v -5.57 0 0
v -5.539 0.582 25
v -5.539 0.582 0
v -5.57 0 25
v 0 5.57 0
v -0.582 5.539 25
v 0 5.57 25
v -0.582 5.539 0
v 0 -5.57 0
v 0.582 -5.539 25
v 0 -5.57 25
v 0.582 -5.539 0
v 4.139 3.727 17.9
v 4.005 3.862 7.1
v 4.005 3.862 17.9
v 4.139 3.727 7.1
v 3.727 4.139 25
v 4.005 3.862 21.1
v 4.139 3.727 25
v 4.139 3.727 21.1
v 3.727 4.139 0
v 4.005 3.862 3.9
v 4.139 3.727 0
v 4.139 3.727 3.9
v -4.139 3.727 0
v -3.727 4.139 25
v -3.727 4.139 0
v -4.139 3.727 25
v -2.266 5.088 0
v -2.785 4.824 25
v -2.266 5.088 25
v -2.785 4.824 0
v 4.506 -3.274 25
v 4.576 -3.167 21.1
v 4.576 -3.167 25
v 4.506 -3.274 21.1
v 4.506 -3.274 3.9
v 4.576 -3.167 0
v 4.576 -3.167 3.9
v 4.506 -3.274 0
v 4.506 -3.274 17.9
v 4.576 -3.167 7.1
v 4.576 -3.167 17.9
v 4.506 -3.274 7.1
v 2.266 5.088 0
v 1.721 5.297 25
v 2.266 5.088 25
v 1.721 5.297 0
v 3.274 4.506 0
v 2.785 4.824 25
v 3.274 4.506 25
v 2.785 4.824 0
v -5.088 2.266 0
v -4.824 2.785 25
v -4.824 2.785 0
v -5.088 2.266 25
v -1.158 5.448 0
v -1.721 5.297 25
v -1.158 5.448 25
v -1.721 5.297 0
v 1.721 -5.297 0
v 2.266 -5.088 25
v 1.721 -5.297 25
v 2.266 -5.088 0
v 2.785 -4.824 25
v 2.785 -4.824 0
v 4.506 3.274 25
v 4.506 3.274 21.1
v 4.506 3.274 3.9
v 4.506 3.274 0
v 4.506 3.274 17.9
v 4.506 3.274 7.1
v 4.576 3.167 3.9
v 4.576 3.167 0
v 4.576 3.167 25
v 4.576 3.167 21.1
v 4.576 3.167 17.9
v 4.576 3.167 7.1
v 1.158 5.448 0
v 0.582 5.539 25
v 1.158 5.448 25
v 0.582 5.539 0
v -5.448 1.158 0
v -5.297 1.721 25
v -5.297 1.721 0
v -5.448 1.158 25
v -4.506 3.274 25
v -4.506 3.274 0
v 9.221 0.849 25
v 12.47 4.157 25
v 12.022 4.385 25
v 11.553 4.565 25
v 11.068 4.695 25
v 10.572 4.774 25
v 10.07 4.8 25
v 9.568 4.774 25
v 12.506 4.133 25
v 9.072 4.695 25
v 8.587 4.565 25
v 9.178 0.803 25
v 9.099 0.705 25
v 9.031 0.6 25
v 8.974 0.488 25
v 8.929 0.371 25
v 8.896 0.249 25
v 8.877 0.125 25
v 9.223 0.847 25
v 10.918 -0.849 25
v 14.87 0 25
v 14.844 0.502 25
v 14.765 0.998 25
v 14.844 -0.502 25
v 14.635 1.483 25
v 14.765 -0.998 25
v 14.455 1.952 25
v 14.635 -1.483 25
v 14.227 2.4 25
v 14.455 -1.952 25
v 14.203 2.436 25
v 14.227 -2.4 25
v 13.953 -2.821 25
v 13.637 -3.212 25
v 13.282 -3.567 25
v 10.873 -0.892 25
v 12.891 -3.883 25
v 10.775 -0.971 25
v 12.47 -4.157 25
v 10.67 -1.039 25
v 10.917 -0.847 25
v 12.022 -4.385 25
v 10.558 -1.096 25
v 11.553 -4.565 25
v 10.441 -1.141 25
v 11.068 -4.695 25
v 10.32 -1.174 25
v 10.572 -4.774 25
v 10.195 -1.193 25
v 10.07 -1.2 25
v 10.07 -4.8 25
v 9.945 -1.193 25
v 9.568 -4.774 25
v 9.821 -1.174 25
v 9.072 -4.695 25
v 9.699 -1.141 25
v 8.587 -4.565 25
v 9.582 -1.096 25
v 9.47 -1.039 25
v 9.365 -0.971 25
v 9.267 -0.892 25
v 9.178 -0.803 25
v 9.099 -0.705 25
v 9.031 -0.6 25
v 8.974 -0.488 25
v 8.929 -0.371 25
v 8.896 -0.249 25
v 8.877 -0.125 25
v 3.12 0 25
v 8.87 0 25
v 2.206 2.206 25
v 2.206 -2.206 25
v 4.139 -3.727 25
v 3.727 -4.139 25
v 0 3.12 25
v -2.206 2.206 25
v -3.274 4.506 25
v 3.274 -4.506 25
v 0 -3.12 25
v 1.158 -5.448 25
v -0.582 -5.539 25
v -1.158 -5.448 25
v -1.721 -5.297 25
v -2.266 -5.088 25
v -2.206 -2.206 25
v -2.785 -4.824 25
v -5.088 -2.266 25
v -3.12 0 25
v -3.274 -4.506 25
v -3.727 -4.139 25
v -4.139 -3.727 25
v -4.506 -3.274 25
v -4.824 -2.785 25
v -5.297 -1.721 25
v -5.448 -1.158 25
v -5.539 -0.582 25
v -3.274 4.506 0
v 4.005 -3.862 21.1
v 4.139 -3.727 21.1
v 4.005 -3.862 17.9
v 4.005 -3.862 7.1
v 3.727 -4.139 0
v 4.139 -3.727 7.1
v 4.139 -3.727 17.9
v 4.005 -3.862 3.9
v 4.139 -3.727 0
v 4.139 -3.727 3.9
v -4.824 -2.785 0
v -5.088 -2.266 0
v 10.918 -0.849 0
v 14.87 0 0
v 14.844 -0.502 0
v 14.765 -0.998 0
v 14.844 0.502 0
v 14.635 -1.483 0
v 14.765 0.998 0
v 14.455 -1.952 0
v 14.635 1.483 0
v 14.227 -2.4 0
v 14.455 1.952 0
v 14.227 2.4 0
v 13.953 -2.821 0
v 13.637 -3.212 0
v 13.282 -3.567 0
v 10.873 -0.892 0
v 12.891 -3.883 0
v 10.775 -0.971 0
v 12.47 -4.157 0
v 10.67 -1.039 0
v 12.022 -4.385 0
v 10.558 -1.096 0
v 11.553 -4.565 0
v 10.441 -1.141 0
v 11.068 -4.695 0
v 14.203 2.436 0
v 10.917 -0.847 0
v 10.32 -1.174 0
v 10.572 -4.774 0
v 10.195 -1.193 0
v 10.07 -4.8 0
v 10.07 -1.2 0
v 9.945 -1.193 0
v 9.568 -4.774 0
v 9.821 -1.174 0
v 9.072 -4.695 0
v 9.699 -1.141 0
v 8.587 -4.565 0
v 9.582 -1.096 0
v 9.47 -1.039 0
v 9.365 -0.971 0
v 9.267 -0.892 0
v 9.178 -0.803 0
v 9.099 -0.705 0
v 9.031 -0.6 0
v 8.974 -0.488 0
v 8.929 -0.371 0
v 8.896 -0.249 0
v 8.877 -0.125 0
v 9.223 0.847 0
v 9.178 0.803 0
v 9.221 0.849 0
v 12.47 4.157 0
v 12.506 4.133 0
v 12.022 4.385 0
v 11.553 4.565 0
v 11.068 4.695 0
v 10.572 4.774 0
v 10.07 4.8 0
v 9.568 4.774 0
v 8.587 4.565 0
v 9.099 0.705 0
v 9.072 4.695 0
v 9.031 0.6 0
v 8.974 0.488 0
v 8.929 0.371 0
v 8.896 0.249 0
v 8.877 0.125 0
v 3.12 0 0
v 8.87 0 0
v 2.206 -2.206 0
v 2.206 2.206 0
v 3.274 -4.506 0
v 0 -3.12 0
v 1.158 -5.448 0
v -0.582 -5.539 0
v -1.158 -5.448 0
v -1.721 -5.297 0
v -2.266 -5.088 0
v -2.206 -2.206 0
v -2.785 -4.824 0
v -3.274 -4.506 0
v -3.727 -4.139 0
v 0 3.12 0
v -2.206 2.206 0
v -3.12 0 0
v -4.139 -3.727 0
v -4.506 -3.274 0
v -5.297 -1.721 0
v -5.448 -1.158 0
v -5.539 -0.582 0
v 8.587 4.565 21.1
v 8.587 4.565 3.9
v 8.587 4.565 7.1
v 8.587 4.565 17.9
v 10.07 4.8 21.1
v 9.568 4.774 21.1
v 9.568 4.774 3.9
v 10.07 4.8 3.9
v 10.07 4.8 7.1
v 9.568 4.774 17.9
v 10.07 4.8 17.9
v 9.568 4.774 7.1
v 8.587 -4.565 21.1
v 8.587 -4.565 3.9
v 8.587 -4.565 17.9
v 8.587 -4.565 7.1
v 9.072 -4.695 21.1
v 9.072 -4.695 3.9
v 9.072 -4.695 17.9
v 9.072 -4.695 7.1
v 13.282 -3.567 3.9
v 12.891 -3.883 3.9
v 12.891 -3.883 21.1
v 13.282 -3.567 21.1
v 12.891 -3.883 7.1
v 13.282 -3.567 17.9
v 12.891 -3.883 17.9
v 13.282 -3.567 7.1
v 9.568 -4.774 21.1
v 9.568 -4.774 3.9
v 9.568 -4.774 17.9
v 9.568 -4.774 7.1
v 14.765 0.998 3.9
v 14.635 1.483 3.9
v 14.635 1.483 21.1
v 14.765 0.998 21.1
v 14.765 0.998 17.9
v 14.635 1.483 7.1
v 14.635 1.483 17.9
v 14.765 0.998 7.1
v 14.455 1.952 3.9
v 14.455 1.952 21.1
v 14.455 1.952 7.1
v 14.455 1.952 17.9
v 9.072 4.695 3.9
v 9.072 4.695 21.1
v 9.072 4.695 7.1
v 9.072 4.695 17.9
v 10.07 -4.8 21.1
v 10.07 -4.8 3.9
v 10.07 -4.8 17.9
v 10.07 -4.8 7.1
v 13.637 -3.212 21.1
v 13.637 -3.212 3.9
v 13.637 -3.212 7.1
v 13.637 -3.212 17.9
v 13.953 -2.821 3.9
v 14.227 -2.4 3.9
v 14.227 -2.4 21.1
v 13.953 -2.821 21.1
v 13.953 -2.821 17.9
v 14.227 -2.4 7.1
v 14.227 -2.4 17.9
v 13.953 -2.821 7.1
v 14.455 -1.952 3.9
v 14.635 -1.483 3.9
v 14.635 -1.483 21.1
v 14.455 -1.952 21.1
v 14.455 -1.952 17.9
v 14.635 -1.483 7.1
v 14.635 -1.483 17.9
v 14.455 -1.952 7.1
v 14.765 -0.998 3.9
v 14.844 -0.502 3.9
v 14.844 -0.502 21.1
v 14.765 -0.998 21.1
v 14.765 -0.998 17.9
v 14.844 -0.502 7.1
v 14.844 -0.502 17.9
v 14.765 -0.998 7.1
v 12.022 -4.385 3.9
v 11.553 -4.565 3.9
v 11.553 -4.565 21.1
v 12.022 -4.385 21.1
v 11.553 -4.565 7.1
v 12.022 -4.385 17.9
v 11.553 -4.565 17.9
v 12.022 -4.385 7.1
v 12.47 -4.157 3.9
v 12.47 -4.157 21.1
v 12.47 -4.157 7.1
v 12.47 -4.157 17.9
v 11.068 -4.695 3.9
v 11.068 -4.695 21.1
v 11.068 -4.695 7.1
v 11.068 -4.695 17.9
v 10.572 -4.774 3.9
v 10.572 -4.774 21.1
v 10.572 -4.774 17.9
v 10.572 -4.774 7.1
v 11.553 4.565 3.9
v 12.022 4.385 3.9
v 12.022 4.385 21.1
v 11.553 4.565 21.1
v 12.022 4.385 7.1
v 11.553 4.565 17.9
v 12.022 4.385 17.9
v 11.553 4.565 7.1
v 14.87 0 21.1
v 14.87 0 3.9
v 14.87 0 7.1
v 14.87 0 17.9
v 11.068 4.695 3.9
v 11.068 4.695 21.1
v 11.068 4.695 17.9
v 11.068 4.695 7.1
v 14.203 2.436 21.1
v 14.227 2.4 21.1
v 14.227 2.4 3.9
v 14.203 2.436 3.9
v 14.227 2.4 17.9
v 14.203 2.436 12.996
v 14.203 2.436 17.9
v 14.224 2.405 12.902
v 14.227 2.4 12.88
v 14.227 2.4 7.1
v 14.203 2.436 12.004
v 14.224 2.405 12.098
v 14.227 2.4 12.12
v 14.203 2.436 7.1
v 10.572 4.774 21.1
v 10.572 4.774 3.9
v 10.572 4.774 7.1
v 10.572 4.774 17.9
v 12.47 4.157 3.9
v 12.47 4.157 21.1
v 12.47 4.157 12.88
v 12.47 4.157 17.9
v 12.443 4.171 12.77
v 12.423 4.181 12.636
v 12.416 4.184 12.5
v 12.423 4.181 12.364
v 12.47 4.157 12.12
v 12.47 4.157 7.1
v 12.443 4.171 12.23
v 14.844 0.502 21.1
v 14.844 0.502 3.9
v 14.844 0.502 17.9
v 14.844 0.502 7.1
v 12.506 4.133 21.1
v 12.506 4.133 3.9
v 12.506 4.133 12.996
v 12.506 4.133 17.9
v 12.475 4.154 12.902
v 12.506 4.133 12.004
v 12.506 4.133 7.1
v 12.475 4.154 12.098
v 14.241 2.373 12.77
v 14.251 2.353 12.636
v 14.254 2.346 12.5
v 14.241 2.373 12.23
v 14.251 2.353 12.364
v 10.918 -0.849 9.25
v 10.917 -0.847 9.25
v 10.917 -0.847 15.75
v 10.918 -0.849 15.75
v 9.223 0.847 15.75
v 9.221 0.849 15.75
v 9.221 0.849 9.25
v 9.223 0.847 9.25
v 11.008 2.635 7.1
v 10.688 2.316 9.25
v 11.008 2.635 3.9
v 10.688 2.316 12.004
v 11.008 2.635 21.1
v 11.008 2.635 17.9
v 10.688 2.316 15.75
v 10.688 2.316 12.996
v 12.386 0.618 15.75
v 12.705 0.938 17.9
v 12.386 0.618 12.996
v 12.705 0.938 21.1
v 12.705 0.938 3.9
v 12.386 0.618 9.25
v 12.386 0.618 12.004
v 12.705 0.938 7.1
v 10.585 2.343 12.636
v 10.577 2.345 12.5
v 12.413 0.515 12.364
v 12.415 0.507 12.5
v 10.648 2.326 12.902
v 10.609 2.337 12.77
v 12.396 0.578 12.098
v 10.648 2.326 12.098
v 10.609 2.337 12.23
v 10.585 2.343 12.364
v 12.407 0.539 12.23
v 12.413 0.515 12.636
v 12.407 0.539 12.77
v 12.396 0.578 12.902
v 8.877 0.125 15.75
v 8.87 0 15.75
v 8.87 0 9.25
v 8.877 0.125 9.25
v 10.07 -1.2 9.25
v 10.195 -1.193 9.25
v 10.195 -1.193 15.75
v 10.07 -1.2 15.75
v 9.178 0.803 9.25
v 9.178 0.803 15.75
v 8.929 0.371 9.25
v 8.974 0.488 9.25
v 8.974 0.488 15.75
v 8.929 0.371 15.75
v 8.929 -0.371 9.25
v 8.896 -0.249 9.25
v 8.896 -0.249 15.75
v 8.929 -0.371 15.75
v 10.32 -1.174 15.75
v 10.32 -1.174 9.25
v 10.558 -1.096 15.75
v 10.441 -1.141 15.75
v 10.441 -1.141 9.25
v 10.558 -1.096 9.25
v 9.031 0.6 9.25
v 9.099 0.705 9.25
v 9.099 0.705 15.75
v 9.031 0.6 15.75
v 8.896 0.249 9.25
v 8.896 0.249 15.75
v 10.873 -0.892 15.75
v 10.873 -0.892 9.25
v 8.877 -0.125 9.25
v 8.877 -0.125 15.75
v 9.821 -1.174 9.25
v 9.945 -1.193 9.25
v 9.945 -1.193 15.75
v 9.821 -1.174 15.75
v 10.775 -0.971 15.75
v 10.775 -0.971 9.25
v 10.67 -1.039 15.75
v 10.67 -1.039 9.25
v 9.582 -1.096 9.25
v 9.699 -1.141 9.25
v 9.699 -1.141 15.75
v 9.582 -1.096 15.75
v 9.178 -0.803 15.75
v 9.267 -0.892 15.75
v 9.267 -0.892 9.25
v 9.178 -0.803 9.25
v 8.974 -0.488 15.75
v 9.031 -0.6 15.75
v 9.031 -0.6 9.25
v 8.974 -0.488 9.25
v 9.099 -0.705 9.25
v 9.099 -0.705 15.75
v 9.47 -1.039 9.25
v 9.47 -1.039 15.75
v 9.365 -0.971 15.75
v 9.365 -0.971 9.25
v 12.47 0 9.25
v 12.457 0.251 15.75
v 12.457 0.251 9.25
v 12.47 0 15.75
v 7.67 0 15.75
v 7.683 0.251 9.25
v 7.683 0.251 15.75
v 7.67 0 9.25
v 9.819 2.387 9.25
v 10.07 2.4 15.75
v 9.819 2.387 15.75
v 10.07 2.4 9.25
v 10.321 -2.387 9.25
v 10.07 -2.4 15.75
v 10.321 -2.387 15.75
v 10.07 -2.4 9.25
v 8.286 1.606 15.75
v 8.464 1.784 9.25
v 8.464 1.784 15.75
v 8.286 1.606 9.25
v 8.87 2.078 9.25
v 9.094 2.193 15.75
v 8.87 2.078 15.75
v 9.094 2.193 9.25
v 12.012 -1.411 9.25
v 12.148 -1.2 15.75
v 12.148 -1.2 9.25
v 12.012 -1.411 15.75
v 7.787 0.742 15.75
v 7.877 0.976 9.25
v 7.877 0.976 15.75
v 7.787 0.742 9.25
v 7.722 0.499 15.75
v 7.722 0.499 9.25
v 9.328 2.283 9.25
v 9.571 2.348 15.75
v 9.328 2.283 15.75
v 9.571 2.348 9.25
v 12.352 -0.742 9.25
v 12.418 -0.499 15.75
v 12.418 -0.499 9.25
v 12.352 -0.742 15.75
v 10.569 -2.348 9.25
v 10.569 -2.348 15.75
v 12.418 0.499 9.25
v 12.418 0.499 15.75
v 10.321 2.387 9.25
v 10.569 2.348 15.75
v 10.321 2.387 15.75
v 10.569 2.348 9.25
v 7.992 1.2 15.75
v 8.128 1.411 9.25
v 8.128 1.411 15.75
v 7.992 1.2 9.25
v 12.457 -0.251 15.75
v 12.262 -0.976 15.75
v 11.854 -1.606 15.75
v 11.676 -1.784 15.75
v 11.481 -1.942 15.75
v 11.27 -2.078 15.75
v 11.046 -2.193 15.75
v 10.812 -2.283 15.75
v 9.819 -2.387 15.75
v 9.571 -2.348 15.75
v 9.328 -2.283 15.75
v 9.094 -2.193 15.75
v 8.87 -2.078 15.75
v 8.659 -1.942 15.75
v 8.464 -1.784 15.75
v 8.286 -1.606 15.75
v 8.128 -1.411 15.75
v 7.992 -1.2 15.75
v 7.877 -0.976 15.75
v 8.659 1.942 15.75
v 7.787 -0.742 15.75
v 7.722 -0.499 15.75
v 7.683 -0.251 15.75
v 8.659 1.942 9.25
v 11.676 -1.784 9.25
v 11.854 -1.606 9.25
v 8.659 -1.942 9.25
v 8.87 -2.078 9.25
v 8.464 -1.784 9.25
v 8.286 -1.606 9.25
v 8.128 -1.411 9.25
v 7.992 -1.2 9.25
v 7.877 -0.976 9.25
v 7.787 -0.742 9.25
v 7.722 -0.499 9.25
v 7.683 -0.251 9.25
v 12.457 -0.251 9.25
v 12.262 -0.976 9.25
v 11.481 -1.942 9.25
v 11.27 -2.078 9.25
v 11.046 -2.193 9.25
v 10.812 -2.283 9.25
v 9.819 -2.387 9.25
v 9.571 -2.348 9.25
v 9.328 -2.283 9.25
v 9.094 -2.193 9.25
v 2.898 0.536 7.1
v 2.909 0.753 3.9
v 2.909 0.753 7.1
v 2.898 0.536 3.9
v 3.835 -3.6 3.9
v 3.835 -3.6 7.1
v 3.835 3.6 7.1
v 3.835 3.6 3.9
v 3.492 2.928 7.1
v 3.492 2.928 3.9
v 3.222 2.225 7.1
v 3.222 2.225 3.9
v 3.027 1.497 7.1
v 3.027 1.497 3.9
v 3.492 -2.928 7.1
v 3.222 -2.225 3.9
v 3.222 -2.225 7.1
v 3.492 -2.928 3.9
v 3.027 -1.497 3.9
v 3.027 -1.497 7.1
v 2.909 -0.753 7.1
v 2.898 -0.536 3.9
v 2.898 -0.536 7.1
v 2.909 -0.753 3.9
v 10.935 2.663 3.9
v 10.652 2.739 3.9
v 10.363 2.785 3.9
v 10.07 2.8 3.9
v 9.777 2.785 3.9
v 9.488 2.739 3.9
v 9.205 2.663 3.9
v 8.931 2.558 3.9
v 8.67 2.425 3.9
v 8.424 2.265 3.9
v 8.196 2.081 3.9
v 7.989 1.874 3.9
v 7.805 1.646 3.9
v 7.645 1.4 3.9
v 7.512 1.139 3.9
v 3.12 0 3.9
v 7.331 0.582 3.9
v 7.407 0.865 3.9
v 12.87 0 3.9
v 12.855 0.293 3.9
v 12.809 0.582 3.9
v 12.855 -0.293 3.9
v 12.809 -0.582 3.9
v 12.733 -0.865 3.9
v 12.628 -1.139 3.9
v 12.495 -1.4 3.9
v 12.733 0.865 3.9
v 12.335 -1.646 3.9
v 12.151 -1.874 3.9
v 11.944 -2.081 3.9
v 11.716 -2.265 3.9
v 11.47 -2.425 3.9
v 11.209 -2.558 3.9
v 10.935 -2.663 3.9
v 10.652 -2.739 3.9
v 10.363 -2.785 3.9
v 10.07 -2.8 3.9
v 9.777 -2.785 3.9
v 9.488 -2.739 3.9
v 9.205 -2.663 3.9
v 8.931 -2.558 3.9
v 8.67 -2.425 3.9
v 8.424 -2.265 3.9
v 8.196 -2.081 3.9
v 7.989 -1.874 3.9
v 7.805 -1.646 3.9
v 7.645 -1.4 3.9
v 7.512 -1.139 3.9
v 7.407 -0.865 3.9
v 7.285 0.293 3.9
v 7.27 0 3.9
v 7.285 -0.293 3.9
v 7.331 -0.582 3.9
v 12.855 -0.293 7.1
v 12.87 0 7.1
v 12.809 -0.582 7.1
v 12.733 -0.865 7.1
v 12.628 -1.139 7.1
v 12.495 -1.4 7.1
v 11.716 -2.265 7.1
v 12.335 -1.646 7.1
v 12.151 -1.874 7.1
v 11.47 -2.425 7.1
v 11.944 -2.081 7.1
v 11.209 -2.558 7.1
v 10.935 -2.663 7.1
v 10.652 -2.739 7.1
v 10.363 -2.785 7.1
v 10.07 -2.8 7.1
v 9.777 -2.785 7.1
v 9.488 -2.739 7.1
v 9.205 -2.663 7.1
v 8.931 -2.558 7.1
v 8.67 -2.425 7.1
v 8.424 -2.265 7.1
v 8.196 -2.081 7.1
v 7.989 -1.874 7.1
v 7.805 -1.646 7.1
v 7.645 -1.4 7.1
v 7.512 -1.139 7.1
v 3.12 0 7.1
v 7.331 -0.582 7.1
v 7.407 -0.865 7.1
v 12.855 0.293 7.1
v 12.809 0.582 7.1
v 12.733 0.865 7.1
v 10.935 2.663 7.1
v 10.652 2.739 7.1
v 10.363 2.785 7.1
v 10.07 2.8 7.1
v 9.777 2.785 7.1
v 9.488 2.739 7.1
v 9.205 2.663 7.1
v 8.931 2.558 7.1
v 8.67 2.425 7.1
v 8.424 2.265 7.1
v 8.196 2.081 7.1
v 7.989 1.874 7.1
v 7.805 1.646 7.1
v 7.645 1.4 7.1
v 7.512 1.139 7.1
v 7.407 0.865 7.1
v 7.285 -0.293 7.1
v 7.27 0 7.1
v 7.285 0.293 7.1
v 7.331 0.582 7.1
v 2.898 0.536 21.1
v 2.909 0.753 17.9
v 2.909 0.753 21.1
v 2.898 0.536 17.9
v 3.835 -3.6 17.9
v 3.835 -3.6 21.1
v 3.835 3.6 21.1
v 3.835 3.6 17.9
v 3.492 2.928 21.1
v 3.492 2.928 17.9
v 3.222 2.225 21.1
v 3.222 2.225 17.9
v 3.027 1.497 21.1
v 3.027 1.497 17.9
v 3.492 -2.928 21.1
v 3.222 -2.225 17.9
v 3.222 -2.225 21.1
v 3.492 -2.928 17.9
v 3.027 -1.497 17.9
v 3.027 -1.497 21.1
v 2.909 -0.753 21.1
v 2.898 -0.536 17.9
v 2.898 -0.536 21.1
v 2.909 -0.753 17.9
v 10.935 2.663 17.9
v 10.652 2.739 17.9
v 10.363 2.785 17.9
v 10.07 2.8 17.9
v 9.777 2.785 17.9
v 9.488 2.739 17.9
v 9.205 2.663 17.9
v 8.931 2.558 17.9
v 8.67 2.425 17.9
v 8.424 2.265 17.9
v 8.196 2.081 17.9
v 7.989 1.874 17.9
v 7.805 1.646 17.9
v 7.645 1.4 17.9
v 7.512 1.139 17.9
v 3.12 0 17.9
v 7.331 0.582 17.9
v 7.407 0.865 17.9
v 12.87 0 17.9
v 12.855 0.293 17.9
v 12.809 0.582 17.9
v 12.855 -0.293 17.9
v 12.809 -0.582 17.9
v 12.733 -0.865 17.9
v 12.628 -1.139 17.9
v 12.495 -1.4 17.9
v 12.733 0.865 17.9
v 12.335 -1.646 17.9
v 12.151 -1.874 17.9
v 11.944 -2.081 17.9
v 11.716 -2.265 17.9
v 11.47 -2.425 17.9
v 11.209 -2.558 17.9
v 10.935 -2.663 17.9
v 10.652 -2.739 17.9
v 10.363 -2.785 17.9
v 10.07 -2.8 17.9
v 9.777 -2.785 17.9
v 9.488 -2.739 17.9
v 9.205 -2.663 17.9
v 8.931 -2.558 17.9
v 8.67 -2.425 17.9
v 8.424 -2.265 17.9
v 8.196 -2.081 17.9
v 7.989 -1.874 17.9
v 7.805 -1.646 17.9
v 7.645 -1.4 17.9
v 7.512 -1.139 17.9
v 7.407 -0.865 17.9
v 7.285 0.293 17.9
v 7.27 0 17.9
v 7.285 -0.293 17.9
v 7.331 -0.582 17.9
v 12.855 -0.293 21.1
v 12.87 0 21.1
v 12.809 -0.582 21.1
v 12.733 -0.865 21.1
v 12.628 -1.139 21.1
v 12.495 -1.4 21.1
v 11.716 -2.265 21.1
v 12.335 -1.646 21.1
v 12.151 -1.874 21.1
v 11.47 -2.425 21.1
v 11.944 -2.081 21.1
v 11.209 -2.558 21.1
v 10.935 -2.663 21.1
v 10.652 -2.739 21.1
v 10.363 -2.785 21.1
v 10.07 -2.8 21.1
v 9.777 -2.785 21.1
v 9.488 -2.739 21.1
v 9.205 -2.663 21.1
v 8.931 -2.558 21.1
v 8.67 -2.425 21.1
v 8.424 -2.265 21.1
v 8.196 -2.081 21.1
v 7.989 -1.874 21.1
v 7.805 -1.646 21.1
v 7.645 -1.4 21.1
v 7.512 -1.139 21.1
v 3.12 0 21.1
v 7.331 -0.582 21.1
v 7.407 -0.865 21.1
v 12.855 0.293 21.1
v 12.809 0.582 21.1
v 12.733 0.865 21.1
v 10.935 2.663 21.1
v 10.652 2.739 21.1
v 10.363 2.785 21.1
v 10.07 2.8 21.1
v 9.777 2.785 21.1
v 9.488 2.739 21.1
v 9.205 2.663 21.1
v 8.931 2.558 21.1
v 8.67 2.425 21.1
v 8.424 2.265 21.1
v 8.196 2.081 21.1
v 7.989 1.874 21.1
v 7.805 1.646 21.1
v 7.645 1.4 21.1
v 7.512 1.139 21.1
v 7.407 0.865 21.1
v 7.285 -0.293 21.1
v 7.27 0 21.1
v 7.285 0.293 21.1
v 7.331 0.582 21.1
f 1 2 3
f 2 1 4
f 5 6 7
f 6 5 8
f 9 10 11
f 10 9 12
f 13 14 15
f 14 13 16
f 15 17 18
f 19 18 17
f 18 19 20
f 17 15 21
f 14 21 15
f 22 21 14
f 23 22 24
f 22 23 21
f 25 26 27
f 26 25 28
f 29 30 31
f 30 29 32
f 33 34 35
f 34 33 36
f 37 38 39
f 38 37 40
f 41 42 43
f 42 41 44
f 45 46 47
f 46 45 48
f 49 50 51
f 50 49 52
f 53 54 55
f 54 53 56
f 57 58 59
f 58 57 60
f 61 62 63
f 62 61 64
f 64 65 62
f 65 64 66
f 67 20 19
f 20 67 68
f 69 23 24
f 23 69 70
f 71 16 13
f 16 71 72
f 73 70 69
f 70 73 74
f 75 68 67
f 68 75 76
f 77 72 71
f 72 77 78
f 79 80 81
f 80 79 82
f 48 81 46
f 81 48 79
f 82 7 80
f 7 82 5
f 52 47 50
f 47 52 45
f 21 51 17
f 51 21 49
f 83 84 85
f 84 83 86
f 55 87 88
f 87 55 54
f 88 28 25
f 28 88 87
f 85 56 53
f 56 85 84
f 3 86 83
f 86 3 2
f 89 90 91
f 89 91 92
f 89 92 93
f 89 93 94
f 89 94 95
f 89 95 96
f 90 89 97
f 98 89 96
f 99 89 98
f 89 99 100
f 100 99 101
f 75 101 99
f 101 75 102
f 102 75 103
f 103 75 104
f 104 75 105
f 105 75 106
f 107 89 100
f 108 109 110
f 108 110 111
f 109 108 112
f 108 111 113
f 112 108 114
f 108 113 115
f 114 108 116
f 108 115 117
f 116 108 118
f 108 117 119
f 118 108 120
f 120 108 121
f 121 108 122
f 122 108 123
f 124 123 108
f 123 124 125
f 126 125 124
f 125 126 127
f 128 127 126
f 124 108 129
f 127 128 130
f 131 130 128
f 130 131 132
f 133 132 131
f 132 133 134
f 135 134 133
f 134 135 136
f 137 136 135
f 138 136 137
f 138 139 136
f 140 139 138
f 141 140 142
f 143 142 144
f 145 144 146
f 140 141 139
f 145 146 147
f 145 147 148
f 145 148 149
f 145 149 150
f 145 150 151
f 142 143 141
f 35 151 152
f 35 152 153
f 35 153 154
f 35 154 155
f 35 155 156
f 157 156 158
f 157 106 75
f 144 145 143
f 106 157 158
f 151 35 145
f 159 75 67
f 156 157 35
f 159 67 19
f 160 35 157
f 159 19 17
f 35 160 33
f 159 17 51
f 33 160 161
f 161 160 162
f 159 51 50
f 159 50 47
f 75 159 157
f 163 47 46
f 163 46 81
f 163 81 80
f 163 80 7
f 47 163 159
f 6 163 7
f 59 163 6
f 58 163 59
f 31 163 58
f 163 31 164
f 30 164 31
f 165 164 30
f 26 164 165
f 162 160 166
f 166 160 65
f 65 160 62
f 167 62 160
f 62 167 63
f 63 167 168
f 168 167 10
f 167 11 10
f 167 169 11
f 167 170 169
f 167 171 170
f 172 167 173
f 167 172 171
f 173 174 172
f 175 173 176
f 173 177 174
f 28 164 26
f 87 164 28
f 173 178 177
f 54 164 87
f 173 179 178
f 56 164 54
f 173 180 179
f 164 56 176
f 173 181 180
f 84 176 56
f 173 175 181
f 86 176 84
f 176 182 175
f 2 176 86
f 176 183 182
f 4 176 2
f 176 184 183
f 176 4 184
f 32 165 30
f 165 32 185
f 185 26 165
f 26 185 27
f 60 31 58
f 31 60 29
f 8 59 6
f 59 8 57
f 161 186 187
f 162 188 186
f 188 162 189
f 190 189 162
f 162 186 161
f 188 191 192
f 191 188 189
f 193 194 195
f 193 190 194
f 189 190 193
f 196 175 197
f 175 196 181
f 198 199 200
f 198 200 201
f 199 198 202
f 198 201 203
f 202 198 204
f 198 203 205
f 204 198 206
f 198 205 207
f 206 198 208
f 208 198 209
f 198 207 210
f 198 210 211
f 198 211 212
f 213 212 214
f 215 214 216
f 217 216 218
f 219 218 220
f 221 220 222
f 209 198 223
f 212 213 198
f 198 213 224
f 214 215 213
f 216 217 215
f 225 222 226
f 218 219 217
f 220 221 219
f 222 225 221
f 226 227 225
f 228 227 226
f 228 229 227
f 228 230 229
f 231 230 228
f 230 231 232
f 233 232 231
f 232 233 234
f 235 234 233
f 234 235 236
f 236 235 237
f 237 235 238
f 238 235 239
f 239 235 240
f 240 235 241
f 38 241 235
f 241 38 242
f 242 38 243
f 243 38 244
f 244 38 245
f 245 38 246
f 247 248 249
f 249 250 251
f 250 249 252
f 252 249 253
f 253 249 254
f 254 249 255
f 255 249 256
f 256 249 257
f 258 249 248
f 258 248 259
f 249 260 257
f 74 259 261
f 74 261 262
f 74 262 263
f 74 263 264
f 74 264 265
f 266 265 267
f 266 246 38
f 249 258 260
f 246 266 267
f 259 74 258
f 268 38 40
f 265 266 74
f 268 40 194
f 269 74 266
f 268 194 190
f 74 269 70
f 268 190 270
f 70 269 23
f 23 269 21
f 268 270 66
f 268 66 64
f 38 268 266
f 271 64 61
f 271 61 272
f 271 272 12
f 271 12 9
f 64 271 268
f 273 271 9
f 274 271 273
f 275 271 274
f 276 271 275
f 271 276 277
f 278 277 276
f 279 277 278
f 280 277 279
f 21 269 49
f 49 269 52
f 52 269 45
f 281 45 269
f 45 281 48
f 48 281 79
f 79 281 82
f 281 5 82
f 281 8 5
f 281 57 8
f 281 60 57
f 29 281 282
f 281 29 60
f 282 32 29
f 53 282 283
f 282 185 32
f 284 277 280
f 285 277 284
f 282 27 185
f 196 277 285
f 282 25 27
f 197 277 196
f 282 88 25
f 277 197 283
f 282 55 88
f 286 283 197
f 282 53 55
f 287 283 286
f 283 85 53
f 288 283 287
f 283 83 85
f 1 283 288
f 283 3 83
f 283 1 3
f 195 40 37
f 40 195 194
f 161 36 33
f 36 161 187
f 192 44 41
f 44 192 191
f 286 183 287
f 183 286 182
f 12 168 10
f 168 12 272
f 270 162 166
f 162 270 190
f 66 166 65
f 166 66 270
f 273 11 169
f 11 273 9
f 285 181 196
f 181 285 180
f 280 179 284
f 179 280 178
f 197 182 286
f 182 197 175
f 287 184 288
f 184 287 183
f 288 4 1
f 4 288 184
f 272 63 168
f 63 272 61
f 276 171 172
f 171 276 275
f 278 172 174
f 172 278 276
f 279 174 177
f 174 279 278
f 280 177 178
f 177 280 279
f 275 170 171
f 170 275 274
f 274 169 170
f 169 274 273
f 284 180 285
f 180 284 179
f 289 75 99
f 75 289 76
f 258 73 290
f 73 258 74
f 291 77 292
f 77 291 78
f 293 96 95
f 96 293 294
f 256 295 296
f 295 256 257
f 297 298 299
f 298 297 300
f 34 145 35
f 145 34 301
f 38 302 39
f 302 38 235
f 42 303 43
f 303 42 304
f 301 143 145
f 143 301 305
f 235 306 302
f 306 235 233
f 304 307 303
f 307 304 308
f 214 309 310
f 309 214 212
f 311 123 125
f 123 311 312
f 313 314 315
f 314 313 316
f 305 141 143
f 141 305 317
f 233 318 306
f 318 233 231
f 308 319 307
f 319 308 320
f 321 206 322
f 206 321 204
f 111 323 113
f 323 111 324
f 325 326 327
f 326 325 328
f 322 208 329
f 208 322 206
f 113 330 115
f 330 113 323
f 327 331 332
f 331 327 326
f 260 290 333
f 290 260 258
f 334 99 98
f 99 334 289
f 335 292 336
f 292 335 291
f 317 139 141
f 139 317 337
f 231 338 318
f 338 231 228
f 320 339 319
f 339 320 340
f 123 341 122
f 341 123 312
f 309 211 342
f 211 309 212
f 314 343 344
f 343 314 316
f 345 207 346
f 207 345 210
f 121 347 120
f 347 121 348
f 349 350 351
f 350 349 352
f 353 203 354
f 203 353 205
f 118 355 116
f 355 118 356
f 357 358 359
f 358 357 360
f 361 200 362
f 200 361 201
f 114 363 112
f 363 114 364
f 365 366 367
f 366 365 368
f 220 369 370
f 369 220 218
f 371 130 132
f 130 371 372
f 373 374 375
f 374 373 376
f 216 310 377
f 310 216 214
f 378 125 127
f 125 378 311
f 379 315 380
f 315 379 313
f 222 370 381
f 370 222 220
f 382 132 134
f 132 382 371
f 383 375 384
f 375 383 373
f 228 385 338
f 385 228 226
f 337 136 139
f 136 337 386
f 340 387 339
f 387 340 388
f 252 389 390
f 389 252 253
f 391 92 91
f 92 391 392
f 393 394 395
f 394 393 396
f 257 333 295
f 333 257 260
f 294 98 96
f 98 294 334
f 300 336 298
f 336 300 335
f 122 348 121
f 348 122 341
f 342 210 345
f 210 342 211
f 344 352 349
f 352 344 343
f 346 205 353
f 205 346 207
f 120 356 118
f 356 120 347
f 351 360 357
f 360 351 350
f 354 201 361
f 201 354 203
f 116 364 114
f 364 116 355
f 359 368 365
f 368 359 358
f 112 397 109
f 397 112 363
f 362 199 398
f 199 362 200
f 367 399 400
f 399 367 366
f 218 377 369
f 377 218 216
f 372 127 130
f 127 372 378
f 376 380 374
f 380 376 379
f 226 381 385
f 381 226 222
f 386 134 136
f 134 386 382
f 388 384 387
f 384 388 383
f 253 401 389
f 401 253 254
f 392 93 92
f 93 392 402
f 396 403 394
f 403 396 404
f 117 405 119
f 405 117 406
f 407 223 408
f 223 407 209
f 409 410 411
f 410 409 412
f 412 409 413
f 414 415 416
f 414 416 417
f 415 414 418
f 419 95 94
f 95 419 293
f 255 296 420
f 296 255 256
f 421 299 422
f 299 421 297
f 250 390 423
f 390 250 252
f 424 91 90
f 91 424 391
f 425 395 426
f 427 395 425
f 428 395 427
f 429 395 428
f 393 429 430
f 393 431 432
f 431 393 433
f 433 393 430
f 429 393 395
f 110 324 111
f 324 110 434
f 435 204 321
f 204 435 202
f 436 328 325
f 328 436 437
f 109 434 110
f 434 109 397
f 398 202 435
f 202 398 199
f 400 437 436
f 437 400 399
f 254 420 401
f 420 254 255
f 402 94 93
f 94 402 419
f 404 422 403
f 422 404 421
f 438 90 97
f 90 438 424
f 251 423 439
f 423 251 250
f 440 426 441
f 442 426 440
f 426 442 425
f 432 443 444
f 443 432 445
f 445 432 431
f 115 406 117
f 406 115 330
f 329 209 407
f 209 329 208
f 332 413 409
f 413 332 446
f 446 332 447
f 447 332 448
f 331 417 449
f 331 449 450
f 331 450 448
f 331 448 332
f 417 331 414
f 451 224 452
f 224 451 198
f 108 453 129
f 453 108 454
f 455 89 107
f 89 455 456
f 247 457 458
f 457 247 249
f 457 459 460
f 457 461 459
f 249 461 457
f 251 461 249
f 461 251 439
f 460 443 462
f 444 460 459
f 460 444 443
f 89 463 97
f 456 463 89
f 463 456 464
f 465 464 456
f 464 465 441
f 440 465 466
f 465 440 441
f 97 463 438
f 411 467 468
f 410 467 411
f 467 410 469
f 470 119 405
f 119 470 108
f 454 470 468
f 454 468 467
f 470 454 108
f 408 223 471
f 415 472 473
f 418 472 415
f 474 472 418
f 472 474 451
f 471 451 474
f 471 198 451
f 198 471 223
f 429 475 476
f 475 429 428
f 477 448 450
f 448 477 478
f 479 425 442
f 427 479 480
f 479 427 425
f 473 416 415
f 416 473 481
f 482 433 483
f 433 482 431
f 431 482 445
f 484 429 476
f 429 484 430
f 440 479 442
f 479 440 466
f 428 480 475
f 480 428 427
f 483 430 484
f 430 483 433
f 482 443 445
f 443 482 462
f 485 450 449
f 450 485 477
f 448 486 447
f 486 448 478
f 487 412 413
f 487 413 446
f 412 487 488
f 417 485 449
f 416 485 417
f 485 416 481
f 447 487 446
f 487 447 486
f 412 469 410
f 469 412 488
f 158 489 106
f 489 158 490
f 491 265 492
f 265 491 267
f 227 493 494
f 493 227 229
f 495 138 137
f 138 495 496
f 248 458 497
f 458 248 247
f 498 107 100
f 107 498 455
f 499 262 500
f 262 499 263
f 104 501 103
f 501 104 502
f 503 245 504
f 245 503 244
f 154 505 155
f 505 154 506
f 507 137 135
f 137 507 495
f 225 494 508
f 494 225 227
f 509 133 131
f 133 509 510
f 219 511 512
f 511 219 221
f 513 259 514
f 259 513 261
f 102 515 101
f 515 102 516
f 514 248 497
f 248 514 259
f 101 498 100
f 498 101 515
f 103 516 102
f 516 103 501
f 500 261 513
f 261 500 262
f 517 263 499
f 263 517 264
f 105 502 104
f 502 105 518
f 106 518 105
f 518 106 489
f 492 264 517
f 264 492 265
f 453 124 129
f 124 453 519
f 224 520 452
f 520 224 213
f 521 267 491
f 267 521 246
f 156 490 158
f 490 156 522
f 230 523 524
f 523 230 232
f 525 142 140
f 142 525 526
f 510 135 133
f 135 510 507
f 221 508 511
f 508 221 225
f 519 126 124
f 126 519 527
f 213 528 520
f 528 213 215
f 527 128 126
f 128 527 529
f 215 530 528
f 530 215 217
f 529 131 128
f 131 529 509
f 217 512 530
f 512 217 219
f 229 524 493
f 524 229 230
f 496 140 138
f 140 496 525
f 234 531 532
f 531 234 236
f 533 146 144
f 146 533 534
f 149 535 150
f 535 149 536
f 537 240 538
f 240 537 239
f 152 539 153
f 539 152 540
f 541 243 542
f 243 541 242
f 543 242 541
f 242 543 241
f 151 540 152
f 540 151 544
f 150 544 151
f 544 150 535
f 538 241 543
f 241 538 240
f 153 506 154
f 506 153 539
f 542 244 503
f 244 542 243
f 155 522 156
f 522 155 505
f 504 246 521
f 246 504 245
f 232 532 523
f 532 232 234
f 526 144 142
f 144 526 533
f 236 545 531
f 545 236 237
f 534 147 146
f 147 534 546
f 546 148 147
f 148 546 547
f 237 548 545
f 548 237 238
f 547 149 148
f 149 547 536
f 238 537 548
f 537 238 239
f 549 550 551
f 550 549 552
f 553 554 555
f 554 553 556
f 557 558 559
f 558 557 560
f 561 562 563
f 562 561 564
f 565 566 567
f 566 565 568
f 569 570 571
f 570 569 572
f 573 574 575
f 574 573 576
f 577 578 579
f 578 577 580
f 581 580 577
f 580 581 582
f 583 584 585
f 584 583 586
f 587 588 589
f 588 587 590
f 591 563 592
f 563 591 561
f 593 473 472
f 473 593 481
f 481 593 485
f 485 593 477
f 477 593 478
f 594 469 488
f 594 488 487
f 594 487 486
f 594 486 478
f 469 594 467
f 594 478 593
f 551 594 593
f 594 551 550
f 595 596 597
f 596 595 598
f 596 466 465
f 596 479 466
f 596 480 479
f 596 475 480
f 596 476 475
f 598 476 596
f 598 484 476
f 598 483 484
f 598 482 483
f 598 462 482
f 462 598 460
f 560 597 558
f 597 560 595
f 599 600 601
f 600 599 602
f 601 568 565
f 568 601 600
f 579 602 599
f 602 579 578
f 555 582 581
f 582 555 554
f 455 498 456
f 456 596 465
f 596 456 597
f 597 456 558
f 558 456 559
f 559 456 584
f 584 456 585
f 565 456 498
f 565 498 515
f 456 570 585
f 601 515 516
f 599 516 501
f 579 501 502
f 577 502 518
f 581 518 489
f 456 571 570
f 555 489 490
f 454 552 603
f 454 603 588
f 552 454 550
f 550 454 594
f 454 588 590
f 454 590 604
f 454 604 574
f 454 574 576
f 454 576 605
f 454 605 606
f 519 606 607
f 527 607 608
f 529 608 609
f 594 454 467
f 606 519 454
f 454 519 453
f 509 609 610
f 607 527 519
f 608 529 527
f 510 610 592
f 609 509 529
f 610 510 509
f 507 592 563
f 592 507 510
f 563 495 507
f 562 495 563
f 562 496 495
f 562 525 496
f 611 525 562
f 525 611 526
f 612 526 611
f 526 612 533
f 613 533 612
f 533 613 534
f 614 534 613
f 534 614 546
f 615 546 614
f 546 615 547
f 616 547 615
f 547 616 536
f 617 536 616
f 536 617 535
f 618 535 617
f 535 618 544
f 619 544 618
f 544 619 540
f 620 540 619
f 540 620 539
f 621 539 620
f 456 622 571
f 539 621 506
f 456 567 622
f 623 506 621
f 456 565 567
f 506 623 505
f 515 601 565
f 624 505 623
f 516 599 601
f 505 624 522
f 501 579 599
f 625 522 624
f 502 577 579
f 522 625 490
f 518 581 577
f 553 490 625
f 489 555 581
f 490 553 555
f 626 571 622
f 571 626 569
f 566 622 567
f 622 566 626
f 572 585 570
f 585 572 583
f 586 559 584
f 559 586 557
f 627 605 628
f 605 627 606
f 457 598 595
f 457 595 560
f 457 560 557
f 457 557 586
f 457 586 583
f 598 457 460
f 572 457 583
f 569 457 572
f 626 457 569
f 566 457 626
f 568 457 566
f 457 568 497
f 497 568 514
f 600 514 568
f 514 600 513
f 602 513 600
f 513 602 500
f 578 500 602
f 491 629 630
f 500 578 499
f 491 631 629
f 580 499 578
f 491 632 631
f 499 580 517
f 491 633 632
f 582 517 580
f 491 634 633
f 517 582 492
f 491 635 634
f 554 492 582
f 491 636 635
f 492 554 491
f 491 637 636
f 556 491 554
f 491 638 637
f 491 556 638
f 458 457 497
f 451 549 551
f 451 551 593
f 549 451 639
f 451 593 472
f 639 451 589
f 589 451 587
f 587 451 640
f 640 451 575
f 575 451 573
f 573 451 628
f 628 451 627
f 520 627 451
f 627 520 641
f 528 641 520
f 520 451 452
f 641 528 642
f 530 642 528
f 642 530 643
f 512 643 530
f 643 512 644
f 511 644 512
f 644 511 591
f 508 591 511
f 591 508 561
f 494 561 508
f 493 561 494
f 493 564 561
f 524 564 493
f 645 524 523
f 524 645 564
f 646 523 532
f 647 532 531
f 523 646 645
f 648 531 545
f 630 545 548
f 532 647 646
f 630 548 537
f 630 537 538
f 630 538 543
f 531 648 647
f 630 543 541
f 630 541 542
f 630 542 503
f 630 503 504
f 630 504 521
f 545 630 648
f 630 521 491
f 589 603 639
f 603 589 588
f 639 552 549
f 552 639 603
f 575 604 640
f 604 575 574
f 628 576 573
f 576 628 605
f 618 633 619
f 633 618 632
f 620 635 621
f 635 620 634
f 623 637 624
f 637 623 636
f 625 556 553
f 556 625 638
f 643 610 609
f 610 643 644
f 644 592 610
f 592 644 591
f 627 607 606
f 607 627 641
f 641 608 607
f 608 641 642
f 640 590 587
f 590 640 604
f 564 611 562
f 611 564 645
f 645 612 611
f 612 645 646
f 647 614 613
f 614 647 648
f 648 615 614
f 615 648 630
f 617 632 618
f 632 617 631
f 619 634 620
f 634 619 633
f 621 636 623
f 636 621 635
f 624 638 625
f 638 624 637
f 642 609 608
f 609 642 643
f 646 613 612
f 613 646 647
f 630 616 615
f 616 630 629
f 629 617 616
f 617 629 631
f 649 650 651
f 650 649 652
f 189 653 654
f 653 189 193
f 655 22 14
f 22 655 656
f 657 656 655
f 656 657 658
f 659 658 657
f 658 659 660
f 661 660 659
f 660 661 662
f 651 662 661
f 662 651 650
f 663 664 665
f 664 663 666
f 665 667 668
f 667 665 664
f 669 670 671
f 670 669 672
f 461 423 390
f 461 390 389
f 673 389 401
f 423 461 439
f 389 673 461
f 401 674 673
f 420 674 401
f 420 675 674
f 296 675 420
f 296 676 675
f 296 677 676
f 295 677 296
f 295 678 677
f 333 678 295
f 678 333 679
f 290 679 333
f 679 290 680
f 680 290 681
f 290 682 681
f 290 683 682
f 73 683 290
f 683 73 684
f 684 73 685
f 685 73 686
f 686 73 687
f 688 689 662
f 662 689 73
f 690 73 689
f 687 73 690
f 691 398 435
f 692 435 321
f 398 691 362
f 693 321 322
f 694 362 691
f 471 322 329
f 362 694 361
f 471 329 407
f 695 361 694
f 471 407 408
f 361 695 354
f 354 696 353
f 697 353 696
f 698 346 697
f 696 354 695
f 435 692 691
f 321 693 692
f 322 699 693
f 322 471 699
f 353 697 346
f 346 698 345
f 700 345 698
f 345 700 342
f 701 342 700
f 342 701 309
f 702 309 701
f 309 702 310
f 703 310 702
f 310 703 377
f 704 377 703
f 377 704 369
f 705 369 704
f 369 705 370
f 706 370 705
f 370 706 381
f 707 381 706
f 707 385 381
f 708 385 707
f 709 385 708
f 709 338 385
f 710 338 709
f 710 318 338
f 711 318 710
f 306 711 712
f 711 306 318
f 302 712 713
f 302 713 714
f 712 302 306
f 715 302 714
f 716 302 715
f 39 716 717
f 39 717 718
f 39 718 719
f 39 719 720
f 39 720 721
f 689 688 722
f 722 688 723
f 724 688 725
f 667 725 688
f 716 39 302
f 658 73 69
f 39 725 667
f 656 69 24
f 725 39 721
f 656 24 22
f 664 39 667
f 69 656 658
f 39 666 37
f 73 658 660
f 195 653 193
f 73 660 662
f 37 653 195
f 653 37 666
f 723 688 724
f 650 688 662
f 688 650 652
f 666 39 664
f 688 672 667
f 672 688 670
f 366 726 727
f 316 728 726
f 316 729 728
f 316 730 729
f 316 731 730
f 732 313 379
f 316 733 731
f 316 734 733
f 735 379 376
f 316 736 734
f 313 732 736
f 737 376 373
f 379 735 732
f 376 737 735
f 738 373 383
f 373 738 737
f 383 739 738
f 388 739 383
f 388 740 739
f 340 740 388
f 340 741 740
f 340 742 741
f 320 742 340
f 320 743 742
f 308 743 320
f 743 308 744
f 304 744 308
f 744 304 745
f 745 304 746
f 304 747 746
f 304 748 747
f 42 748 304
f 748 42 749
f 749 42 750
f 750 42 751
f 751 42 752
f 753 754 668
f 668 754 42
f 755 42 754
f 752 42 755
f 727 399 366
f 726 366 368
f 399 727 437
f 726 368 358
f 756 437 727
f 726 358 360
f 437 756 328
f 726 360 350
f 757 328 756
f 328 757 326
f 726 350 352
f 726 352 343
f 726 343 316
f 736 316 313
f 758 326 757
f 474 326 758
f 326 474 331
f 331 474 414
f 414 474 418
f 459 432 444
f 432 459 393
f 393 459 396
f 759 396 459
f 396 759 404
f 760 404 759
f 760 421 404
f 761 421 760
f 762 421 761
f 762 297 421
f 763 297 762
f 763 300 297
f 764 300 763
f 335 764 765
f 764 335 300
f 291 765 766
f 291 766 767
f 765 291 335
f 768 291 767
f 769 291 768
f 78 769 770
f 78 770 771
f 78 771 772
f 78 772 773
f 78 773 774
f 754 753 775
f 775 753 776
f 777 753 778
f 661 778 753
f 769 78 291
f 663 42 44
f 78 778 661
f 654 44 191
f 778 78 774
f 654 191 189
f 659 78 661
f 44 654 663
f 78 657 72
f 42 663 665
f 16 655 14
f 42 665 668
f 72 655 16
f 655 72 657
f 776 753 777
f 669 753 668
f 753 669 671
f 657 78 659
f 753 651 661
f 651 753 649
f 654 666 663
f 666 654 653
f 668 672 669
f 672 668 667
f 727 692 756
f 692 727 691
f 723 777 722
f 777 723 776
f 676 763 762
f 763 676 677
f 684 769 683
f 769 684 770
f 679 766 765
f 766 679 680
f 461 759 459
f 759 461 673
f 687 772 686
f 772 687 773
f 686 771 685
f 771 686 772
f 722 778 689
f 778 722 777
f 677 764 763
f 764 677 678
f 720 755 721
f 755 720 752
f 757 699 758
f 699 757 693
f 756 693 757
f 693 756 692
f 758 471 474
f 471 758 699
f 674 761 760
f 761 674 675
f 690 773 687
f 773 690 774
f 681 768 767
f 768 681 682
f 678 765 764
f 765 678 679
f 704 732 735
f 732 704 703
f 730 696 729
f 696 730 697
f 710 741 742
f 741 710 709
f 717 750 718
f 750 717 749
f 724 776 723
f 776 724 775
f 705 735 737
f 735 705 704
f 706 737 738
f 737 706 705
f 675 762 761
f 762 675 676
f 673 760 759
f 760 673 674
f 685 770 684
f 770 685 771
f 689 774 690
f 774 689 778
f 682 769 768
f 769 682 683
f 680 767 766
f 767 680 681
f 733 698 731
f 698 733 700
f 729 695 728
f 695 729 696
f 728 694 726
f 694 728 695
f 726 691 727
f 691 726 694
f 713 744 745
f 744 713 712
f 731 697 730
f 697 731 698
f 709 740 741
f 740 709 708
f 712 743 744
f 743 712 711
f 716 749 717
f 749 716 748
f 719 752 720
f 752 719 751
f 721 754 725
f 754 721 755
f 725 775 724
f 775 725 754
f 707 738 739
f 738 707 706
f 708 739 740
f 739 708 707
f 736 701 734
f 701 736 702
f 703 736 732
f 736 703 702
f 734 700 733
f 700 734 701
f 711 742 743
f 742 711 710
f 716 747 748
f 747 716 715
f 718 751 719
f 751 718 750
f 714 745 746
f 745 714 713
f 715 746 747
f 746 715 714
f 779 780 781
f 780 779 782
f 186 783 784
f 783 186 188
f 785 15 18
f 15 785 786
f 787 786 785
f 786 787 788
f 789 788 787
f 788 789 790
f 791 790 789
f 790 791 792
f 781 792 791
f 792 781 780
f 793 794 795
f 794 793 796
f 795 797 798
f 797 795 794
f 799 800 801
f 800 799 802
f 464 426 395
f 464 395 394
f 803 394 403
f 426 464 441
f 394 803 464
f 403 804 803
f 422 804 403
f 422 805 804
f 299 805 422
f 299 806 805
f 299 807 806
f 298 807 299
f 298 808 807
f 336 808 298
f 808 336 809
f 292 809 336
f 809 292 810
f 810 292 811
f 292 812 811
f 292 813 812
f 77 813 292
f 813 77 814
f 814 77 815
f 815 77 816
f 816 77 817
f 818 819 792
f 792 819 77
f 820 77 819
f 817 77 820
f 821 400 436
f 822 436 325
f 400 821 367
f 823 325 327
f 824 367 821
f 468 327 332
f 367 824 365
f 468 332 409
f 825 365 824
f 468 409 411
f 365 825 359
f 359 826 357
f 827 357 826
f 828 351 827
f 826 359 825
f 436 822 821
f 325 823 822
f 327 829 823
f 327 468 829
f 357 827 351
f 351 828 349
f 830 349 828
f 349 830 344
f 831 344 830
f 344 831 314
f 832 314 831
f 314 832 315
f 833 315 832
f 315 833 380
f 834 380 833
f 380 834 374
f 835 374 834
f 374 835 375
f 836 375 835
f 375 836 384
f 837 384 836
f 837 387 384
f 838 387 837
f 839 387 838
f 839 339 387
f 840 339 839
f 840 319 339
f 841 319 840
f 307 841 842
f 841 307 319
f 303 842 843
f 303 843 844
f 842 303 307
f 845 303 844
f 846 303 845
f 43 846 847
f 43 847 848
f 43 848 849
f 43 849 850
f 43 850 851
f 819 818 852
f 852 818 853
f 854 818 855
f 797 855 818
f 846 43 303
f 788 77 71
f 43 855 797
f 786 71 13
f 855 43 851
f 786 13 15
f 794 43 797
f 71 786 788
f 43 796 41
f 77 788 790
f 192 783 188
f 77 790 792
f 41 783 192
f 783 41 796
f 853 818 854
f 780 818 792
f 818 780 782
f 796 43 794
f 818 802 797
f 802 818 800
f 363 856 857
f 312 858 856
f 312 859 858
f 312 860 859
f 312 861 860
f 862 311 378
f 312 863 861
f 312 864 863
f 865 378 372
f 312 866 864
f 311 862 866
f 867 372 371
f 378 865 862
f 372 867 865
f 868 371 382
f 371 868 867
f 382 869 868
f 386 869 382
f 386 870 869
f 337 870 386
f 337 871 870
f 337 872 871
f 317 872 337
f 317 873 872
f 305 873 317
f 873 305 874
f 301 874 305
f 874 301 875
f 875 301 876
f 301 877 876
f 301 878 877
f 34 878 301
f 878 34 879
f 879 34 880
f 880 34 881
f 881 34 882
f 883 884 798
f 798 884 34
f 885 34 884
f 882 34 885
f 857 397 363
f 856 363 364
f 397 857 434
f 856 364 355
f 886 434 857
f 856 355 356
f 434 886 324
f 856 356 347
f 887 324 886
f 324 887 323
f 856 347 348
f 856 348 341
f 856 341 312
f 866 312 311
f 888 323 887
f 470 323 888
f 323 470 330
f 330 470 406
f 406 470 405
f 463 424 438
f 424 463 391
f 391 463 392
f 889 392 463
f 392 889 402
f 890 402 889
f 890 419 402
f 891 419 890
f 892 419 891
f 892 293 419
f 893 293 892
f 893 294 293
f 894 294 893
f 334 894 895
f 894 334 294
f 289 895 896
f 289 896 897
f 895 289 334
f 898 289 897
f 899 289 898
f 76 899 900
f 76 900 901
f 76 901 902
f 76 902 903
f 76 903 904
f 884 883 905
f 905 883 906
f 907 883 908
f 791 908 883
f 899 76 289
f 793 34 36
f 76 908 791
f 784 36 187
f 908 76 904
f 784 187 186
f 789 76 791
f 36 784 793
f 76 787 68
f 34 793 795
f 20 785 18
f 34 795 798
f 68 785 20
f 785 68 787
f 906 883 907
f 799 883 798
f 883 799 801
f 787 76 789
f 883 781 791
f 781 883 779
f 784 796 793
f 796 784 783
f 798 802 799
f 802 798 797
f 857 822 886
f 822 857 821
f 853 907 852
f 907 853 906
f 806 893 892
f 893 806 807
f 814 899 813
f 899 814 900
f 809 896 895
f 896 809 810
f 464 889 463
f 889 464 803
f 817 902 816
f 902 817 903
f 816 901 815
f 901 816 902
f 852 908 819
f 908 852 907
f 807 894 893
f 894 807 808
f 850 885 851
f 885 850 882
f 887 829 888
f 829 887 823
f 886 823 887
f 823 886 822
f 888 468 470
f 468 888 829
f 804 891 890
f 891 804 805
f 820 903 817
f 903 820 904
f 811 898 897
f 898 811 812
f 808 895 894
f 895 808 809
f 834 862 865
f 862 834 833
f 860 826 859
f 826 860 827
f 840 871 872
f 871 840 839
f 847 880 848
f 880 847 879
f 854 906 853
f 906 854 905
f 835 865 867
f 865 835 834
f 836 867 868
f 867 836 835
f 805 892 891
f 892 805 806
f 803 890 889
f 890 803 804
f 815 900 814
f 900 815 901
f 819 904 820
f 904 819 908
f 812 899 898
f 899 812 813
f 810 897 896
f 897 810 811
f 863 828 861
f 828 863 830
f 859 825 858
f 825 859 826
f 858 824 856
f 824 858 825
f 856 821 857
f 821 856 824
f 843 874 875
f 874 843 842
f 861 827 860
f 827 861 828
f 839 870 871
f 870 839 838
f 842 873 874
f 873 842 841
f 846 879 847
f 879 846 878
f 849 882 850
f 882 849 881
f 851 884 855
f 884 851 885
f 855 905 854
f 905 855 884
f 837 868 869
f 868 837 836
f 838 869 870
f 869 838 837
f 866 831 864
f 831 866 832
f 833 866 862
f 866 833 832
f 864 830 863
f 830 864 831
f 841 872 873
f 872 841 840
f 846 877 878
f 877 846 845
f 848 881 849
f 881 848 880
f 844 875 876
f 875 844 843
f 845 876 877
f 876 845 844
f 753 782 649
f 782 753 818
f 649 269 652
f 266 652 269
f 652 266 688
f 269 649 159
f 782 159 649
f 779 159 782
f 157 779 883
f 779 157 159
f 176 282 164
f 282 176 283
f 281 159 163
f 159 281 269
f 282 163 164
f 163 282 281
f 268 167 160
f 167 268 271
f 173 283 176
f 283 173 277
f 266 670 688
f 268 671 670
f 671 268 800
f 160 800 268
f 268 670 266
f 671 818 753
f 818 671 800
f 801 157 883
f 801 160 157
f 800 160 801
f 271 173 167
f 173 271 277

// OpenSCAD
// Copyright (C) 2026 Weston Hinton <wbhinton@gmail.com>
//
// This program is free software: you can redistribute it and/or modify
// it under the terms of the GNU General Public License as published by
// the Free Software Foundation, either version 3 of the License, or
// (at your option) any later version.
//
// This program is distributed in the hope that it will be useful,
// but WITHOUT ANY WARRANTY; without even the implied warranty of
// MERCHANTABILITY or FITNESS FOR A PARTICULAR PURPOSE.  See the
// GNU General Public License for more details.
//
// You should have received a copy of the GNU General Public License
// along with this program.  If not, see <https://www.gnu.org/licenses/>.
// =============================================================================
// PROJECT: UNIVERSAL ELRS T-ANTENNA MOUNT
// VERSION: 6.5 (Master Library Edition)
// DESCRIPTION: Modular mount for T-style dipole antennas. Features a "revolving"
//              entrance that allows for 360-degree cable routing flexibility.
// =============================================================================

/* [1. USER EDITABLE PARAMETERS] */

// Thickness of the TPU skin. 2.4mm = exactly 6 walls with a 0.4mm nozzle.
wall_thickness  = 2.4;   

// Smoothness of circles. 60 provides high-quality prints without lag.
$fn = 60; 

// The outer diameter of your frame's aluminum standoff.
standoff_dia    = 6.34;   

// Total vertical height of the TPU mount.
sleeve_height   = 25.0;  

// 0 = Vertical (Up/Down), 1 = Horizontal (Left/Right).
antenna_orientation = 0; 

// REVOLUTION: Rotates the loading slit and cable exit around the cradle.
// 0 = Outward, 90 = Side, 180 = Toward Standoff.
slot_rotation_deg = 45; 

/* [2. ANTENNA HARDWARE SPECS] */

// Diameter of the thin flexible antenna wires.
wire_dia        = 2.4;   

// Diameter of the rigid plastic center junction (the "T").
junction_dia    = 4.8;   

// Length of the rigid center junction.
junction_width  = 6.5;   

// Total length of the cradle arm.
cradle_length   = 25.0;  

// Diameter of the coax cable leading to the receiver.
feedline_dia    = 2.6;   

/* [3. ZIP-TIE & PLACEMENT] */

// Width of the zip-tie channel.
ziptie_width    = 3.2;   

// Distance between the centers of the two zip-tie slots.
ziptie_spacing  = 14.0;   

// TPU "floor" thickness inside the zip-tie channel for antenna protection.
ziptie_floor    = 0.8;

// Distance (air gap) between the standoff and the antenna cradle.
plane_offset    = 4.5;   

/* [4. INTERNAL CALCULATIONS] */

total_offset = (standoff_dia/2) + wall_thickness + plane_offset;
rot_angle = (antenna_orientation == 1) ? 90 : 0;

// =============================================================================
// GEOMETRIC CONSTRAINTS (The "Safety Catch")
// =============================================================================

assert(sleeve_height >= cradle_length, 
    str("ERROR: sleeve_height (", sleeve_height, ") must be >= cradle_length"));

// =============================================================================
// MAIN ASSEMBLY
// =============================================================================

difference() {
    
    // --- STEP A: THE SOLID "CLAY" ---
    union() {
        // Create the sleeve that slides over the standoff.
        cylinder(h=sleeve_height, d=standoff_dia + (wall_thickness*2));
        
        // 'hull' creates a smooth, strong bridge between the sleeve and the cradle.
        hull() {
            translate([0, 0, sleeve_height/2])
                cube([standoff_dia + wall_thickness, 0.1, sleeve_height], center=true);
            
            translate([total_offset, 0, sleeve_height/2])
                rotate([rot_angle, 0, 0])
                    cylinder(h=cradle_length, d=junction_dia + (wall_thickness*2), center=true);
        }
    }

    // --- STEP B: THE "FINAL MACHINING" (Subtractions) ---
    
    // 1. The Standoff Hole. We use 8 sides (Octagon) for better TPU friction.
    translate([0, 0, -1])
        cylinder(h=sleeve_height + 2, d=standoff_dia - 0.1, $fn=8);

    // 2. THE ANTENNA CAVITY.
    // We move to the cradle's position and orient it (Vertical vs Horizontal).
    translate([total_offset, 0, sleeve_height/2])
        rotate([rot_angle, 0, 0]) {
            
            // STATIC BORES: These stay put because the dipole wires don't revolve.
            cylinder(h=cradle_length + 2, d=wire_dia, center=true); 
            cylinder(h=junction_width, d=junction_dia, center=true); 
            
            // REVOLVING FEATURES: These spin around the longitudinal (Z) axis.
            // This is the "Clockface" logic.
            rotate([0, 0, slot_rotation_deg]) {
                
                // The Snap-Fit Slit: The "Entry Door" for the antenna.
                translate([0, -wire_dia/2, -cradle_length/2 - 1])
                    cube([junction_dia + 10, wire_dia, cradle_length + 2]);
                    
                // The Feedline Exit: The "Tunnel" for the coax cable.
                rotate([0, 90, 0])
                    cylinder(h=junction_dia + 10, d=feedline_dia);
            }
        }

    // 3. THE ZIP-TIE CHANNELS.
    // These are placed symmetrically around the center T-junction.
    for(i=[-1, 1]) {
        translate([total_offset, 0, sleeve_height/2])
            rotate([rot_angle, 0, 0])
                translate([0, 0, i * (ziptie_spacing/2)])
                    difference() {
                        // The channel depth.
                        cylinder(h=ziptie_width, d=junction_dia + (wall_thickness*4), center=true);
                        // The inner core to prevent crushing the antenna.
                        cylinder(h=ziptie_width + 1, d=junction_dia + ziptie_floor, center=true);
                    }
    }
}
